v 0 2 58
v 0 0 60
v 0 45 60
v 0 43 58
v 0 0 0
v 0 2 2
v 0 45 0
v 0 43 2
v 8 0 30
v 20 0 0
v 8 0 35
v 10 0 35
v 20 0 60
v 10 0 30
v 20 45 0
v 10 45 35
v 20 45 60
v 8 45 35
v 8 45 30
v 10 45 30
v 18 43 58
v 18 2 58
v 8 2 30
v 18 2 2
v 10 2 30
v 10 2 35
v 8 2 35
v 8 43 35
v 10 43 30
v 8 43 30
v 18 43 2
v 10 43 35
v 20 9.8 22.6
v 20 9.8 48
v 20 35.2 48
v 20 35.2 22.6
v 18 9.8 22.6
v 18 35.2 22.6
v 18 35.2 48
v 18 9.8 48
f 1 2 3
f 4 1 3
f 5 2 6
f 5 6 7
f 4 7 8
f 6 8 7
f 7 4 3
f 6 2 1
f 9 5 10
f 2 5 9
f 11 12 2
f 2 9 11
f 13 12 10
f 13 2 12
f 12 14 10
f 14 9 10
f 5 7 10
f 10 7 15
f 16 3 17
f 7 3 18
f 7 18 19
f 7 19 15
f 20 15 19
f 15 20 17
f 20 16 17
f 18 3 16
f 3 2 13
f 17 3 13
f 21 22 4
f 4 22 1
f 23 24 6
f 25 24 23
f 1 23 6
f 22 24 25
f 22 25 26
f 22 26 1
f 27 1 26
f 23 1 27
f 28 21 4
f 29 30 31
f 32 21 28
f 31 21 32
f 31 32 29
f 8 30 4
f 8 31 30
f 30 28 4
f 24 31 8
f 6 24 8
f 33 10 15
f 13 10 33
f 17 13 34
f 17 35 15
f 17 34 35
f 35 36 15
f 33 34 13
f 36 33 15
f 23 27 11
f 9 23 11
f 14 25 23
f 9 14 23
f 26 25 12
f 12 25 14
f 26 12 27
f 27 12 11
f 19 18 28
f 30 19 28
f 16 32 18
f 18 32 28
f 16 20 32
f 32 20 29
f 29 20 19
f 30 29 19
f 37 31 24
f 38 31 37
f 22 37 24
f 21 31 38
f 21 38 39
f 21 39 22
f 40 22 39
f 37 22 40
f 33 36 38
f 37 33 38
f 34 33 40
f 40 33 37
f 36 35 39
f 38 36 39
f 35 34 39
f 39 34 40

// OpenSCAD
// Parameters

// Main box
w = 45;
l = 60;
h = 20;
thickness = 2; 

// Sensor
sensor_w = 25.4; 
sensor_l = 25.4;
distance_from_top = 10;

// Clips
attach_clip_w = 5;
attach_clip_l = 2;
distance_from_edge = h/2 - attach_clip_l;

// Front box
difference(){

	difference(){
		cube([h,w,l]);
		translate([-thickness,thickness,thickness]) {
  			cube([h,w-2*thickness,l-2*thickness]);
		}
	}

	// Sensor hole
	translate([1,w/2-sensor_w/2,l-thickness-distance_from_top-sensor_l]) {
			cube([50,sensor_w,sensor_l]);
		} 

	// Clips on the sides
	translate([distance_from_edge,-5,l/2]) {
		cube([attach_clip_l,60,attach_clip_w]);
	} 
	
}
